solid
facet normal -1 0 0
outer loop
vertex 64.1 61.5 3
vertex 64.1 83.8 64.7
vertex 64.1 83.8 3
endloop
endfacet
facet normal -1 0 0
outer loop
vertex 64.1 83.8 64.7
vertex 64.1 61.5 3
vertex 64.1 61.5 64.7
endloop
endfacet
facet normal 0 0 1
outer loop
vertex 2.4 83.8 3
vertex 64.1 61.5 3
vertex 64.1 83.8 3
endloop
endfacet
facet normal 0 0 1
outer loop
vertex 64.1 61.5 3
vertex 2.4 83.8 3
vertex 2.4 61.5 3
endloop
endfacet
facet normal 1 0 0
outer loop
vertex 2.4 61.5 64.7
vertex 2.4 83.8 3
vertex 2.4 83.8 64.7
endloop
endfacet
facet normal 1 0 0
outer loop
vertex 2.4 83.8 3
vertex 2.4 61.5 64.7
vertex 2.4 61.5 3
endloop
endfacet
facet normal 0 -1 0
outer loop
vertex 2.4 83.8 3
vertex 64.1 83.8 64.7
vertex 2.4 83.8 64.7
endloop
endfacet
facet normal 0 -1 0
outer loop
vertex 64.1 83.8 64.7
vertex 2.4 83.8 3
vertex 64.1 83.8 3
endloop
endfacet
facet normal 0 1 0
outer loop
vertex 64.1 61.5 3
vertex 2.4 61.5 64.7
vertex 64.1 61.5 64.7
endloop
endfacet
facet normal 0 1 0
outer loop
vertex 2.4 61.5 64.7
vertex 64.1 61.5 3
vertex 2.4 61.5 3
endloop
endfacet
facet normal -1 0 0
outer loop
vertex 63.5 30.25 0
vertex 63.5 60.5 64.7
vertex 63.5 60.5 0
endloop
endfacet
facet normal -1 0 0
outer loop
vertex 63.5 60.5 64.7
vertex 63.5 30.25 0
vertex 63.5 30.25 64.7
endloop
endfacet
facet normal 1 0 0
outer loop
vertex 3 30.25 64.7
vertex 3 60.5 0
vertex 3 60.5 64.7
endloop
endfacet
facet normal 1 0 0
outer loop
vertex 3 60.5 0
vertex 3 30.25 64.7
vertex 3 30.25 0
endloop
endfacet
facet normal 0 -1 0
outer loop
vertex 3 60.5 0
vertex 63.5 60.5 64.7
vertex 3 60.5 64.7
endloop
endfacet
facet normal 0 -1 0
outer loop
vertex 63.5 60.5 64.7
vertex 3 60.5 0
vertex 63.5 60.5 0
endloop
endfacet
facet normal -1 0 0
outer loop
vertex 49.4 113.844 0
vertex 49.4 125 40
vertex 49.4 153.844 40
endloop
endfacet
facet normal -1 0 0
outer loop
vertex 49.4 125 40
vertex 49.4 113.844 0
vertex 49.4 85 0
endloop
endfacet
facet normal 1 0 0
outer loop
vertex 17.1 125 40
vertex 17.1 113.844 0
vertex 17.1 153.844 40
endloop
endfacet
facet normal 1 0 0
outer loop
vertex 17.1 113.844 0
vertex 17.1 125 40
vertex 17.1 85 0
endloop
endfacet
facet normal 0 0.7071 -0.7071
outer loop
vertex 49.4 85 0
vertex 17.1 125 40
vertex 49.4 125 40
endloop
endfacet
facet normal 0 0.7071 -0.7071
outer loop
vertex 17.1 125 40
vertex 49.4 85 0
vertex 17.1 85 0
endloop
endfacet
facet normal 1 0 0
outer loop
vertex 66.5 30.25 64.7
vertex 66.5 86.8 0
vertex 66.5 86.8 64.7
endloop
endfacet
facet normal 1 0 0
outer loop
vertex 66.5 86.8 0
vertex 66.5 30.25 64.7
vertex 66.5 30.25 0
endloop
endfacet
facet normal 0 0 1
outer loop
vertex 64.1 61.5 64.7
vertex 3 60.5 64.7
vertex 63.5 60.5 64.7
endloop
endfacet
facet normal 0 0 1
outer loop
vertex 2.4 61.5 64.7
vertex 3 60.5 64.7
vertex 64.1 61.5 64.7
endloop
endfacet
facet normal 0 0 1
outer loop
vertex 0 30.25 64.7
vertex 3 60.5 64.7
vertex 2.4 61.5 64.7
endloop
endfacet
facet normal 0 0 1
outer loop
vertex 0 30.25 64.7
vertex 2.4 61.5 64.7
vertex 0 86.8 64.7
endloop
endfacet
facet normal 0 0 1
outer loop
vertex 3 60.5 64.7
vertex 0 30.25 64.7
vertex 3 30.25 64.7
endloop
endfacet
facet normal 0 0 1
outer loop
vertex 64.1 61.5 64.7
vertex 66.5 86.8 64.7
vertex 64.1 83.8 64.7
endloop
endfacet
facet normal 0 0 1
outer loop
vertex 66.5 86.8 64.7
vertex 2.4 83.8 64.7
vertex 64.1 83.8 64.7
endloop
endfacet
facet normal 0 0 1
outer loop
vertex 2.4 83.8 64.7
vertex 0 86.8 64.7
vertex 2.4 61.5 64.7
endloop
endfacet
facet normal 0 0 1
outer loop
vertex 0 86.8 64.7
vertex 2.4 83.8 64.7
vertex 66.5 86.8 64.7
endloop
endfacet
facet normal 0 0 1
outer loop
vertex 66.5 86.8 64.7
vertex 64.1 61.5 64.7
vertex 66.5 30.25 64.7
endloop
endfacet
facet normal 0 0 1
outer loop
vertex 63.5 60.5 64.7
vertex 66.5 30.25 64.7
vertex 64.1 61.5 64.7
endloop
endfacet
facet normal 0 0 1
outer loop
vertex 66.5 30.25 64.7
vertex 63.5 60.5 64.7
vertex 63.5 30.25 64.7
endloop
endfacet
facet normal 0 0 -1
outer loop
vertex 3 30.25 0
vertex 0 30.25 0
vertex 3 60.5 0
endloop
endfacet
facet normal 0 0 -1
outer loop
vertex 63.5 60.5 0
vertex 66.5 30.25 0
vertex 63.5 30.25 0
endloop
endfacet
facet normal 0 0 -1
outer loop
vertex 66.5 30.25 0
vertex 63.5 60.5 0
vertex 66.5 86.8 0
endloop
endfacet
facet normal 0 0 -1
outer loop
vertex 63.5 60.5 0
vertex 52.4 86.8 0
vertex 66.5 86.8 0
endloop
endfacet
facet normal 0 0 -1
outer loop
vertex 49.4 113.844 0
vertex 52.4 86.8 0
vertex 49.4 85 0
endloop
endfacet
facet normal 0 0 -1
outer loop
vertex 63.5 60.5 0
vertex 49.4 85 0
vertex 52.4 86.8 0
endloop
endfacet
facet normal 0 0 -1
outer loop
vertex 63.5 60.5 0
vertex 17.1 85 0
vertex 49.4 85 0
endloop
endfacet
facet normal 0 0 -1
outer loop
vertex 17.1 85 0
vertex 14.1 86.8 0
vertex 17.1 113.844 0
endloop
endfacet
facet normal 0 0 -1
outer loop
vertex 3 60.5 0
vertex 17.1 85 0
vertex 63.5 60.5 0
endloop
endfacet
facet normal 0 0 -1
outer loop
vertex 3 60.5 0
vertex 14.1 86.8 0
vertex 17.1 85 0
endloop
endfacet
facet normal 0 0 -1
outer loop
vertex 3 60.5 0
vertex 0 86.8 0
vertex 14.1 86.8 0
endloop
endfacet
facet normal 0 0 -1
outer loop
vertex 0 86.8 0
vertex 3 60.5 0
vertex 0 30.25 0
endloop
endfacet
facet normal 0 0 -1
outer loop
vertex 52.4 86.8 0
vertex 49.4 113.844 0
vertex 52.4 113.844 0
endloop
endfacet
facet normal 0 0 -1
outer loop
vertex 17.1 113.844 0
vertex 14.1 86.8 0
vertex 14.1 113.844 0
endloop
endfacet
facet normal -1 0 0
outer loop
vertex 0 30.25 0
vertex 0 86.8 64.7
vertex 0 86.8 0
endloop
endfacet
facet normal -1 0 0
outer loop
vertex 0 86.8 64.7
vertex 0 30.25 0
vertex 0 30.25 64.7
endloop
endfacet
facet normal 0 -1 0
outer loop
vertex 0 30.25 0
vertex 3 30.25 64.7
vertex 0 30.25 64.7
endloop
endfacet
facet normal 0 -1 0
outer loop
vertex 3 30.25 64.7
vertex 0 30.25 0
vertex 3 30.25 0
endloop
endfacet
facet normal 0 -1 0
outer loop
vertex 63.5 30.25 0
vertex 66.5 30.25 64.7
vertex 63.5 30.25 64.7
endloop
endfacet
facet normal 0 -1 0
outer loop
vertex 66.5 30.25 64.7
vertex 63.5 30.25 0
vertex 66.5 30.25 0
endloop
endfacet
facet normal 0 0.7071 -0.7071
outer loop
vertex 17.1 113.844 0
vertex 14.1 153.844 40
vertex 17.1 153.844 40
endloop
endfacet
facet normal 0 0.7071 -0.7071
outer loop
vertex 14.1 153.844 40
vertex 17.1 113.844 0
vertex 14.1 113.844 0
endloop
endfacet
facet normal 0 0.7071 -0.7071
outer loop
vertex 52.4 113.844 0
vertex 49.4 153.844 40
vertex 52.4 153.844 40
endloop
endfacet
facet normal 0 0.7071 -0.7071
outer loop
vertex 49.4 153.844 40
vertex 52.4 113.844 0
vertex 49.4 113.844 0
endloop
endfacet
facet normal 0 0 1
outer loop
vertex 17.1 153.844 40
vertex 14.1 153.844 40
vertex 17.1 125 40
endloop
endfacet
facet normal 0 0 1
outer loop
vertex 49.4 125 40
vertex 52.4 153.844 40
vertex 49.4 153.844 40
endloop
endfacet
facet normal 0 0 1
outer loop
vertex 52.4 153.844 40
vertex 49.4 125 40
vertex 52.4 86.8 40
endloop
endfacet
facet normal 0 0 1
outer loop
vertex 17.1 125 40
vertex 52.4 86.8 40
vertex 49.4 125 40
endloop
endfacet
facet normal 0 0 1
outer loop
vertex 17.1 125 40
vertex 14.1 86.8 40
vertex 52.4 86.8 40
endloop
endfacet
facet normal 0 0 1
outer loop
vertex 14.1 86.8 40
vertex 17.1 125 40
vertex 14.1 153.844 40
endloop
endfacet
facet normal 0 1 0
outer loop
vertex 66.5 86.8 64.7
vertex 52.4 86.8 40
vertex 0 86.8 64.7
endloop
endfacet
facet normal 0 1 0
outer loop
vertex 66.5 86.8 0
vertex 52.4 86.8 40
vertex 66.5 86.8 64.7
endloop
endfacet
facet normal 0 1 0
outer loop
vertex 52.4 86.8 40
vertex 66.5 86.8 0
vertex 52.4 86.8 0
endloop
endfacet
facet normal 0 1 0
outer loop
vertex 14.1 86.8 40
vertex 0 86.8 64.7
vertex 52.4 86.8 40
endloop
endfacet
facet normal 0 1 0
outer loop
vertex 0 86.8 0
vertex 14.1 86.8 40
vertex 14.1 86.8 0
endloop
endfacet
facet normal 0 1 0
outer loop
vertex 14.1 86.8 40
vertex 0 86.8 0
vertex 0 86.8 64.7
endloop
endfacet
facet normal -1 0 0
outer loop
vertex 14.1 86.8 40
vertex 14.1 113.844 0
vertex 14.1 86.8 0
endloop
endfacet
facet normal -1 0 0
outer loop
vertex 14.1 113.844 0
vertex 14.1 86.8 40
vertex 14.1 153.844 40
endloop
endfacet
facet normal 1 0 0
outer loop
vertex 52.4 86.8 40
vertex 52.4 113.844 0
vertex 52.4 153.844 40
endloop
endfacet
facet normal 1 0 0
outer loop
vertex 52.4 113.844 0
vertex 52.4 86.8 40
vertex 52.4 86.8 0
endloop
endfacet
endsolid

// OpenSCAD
PRINTEDPARTSIDETHICKNESS=3; // how thick the sides are around the pole (and battery)
VERTICALSQUAREPOLEWIDTH=60.5;
DIAGONALSQUAREPIECEWIDTH=32.3;
PRINTEDPARTWIDTH=VERTICALSQUAREPOLEWIDTH + (PRINTEDPARTSIDETHICKNESS * 2); // how wide the whole thing is
DIAGONALSQUAREPIECEANGLE=45;
BATTERYWIDTH=61.7;
BATTERYTHICKNESS=22.3;
BATTERYHEIGHT=138.7; // 84mm before USB ports start
BATTERYMETERBOTTOM=90;
BATTERYMETERXPOSITION=17; // mm from right edge
BATTERYMETERWINDOWWIDTH=15;
BATTERYUSBWINDOWWIDTH=10;
BATTERYUSBWINDOWBOTTOM=88;

difference() {
  translate([0,VERTICALSQUAREPOLEWIDTH/2,0]) overallshape();
  translate([(PRINTEDPARTWIDTH-BATTERYWIDTH)/2,VERTICALSQUAREPOLEWIDTH+1,PRINTEDPARTSIDETHICKNESS]) #battery();
  translate([PRINTEDPARTSIDETHICKNESS,0,-85]) #mailboxstand();
  rotate([-45,0,0]) translate([-1,VERTICALSQUAREPOLEWIDTH+20,0]) cube([PRINTEDPARTWIDTH+2,VERTICALSQUAREPOLEWIDTH,BATTERYHEIGHT*2]);
  translate([-1,VERTICALSQUAREPOLEWIDTH+BATTERYTHICKNESS+1+PRINTEDPARTSIDETHICKNESS,40]) cube([PRINTEDPARTWIDTH+2,VERTICALSQUAREPOLEWIDTH*2,BATTERYHEIGHT*2]);
  translate([-1,VERTICALSQUAREPOLEWIDTH+BATTERYTHICKNESS+1+PRINTEDPARTSIDETHICKNESS,-1]) cube([(PRINTEDPARTWIDTH-DIAGONALSQUAREPIECEWIDTH)/2-PRINTEDPARTSIDETHICKNESS+1,BATTERYHEIGHT,BATTERYHEIGHT*2]);
  translate([(PRINTEDPARTWIDTH+DIAGONALSQUAREPIECEWIDTH)/2+PRINTEDPARTSIDETHICKNESS,VERTICALSQUAREPOLEWIDTH+BATTERYTHICKNESS+1+PRINTEDPARTSIDETHICKNESS,-1]) cube([VERTICALSQUAREPOLEWIDTH,BATTERYHEIGHT,BATTERYHEIGHT*2]);
}

module overallshape() {
    color("YELLOW") cube([PRINTEDPARTWIDTH,BATTERYHEIGHT,BATTERYWIDTH+PRINTEDPARTSIDETHICKNESS]); // make whole thing only one battery width high (plus bottom wall thickness under battery)
}

module battery() {
  color("GREEN") cube([BATTERYWIDTH,BATTERYTHICKNESS,BATTERYHEIGHT]);
  translate([BATTERYMETERXPOSITION,BATTERYTHICKNESS-1,BATTERYMETERBOTTOM]) color("RED") cube([BATTERYMETERWINDOWWIDTH,30,BATTERYHEIGHT-BATTERYMETERBOTTOM+1]);
  translate([-10,BATTERYTHICKNESS/2-BATTERYUSBWINDOWWIDTH/2,BATTERYUSBWINDOWBOTTOM]) color("ORANGE") cube([11,BATTERYUSBWINDOWWIDTH,60]);
}

module mailboxstand() {
  color("BLACK") cube([VERTICALSQUAREPOLEWIDTH,VERTICALSQUAREPOLEWIDTH,BATTERYHEIGHT*2]);
  rotate([-45,0,0]) color("BLACK") translate([VERTICALSQUAREPOLEWIDTH/2-DIAGONALSQUAREPIECEWIDTH/2,0,30]) cube([DIAGONALSQUAREPIECEWIDTH,DIAGONALSQUAREPIECEWIDTH,BATTERYHEIGHT*2]);
}
